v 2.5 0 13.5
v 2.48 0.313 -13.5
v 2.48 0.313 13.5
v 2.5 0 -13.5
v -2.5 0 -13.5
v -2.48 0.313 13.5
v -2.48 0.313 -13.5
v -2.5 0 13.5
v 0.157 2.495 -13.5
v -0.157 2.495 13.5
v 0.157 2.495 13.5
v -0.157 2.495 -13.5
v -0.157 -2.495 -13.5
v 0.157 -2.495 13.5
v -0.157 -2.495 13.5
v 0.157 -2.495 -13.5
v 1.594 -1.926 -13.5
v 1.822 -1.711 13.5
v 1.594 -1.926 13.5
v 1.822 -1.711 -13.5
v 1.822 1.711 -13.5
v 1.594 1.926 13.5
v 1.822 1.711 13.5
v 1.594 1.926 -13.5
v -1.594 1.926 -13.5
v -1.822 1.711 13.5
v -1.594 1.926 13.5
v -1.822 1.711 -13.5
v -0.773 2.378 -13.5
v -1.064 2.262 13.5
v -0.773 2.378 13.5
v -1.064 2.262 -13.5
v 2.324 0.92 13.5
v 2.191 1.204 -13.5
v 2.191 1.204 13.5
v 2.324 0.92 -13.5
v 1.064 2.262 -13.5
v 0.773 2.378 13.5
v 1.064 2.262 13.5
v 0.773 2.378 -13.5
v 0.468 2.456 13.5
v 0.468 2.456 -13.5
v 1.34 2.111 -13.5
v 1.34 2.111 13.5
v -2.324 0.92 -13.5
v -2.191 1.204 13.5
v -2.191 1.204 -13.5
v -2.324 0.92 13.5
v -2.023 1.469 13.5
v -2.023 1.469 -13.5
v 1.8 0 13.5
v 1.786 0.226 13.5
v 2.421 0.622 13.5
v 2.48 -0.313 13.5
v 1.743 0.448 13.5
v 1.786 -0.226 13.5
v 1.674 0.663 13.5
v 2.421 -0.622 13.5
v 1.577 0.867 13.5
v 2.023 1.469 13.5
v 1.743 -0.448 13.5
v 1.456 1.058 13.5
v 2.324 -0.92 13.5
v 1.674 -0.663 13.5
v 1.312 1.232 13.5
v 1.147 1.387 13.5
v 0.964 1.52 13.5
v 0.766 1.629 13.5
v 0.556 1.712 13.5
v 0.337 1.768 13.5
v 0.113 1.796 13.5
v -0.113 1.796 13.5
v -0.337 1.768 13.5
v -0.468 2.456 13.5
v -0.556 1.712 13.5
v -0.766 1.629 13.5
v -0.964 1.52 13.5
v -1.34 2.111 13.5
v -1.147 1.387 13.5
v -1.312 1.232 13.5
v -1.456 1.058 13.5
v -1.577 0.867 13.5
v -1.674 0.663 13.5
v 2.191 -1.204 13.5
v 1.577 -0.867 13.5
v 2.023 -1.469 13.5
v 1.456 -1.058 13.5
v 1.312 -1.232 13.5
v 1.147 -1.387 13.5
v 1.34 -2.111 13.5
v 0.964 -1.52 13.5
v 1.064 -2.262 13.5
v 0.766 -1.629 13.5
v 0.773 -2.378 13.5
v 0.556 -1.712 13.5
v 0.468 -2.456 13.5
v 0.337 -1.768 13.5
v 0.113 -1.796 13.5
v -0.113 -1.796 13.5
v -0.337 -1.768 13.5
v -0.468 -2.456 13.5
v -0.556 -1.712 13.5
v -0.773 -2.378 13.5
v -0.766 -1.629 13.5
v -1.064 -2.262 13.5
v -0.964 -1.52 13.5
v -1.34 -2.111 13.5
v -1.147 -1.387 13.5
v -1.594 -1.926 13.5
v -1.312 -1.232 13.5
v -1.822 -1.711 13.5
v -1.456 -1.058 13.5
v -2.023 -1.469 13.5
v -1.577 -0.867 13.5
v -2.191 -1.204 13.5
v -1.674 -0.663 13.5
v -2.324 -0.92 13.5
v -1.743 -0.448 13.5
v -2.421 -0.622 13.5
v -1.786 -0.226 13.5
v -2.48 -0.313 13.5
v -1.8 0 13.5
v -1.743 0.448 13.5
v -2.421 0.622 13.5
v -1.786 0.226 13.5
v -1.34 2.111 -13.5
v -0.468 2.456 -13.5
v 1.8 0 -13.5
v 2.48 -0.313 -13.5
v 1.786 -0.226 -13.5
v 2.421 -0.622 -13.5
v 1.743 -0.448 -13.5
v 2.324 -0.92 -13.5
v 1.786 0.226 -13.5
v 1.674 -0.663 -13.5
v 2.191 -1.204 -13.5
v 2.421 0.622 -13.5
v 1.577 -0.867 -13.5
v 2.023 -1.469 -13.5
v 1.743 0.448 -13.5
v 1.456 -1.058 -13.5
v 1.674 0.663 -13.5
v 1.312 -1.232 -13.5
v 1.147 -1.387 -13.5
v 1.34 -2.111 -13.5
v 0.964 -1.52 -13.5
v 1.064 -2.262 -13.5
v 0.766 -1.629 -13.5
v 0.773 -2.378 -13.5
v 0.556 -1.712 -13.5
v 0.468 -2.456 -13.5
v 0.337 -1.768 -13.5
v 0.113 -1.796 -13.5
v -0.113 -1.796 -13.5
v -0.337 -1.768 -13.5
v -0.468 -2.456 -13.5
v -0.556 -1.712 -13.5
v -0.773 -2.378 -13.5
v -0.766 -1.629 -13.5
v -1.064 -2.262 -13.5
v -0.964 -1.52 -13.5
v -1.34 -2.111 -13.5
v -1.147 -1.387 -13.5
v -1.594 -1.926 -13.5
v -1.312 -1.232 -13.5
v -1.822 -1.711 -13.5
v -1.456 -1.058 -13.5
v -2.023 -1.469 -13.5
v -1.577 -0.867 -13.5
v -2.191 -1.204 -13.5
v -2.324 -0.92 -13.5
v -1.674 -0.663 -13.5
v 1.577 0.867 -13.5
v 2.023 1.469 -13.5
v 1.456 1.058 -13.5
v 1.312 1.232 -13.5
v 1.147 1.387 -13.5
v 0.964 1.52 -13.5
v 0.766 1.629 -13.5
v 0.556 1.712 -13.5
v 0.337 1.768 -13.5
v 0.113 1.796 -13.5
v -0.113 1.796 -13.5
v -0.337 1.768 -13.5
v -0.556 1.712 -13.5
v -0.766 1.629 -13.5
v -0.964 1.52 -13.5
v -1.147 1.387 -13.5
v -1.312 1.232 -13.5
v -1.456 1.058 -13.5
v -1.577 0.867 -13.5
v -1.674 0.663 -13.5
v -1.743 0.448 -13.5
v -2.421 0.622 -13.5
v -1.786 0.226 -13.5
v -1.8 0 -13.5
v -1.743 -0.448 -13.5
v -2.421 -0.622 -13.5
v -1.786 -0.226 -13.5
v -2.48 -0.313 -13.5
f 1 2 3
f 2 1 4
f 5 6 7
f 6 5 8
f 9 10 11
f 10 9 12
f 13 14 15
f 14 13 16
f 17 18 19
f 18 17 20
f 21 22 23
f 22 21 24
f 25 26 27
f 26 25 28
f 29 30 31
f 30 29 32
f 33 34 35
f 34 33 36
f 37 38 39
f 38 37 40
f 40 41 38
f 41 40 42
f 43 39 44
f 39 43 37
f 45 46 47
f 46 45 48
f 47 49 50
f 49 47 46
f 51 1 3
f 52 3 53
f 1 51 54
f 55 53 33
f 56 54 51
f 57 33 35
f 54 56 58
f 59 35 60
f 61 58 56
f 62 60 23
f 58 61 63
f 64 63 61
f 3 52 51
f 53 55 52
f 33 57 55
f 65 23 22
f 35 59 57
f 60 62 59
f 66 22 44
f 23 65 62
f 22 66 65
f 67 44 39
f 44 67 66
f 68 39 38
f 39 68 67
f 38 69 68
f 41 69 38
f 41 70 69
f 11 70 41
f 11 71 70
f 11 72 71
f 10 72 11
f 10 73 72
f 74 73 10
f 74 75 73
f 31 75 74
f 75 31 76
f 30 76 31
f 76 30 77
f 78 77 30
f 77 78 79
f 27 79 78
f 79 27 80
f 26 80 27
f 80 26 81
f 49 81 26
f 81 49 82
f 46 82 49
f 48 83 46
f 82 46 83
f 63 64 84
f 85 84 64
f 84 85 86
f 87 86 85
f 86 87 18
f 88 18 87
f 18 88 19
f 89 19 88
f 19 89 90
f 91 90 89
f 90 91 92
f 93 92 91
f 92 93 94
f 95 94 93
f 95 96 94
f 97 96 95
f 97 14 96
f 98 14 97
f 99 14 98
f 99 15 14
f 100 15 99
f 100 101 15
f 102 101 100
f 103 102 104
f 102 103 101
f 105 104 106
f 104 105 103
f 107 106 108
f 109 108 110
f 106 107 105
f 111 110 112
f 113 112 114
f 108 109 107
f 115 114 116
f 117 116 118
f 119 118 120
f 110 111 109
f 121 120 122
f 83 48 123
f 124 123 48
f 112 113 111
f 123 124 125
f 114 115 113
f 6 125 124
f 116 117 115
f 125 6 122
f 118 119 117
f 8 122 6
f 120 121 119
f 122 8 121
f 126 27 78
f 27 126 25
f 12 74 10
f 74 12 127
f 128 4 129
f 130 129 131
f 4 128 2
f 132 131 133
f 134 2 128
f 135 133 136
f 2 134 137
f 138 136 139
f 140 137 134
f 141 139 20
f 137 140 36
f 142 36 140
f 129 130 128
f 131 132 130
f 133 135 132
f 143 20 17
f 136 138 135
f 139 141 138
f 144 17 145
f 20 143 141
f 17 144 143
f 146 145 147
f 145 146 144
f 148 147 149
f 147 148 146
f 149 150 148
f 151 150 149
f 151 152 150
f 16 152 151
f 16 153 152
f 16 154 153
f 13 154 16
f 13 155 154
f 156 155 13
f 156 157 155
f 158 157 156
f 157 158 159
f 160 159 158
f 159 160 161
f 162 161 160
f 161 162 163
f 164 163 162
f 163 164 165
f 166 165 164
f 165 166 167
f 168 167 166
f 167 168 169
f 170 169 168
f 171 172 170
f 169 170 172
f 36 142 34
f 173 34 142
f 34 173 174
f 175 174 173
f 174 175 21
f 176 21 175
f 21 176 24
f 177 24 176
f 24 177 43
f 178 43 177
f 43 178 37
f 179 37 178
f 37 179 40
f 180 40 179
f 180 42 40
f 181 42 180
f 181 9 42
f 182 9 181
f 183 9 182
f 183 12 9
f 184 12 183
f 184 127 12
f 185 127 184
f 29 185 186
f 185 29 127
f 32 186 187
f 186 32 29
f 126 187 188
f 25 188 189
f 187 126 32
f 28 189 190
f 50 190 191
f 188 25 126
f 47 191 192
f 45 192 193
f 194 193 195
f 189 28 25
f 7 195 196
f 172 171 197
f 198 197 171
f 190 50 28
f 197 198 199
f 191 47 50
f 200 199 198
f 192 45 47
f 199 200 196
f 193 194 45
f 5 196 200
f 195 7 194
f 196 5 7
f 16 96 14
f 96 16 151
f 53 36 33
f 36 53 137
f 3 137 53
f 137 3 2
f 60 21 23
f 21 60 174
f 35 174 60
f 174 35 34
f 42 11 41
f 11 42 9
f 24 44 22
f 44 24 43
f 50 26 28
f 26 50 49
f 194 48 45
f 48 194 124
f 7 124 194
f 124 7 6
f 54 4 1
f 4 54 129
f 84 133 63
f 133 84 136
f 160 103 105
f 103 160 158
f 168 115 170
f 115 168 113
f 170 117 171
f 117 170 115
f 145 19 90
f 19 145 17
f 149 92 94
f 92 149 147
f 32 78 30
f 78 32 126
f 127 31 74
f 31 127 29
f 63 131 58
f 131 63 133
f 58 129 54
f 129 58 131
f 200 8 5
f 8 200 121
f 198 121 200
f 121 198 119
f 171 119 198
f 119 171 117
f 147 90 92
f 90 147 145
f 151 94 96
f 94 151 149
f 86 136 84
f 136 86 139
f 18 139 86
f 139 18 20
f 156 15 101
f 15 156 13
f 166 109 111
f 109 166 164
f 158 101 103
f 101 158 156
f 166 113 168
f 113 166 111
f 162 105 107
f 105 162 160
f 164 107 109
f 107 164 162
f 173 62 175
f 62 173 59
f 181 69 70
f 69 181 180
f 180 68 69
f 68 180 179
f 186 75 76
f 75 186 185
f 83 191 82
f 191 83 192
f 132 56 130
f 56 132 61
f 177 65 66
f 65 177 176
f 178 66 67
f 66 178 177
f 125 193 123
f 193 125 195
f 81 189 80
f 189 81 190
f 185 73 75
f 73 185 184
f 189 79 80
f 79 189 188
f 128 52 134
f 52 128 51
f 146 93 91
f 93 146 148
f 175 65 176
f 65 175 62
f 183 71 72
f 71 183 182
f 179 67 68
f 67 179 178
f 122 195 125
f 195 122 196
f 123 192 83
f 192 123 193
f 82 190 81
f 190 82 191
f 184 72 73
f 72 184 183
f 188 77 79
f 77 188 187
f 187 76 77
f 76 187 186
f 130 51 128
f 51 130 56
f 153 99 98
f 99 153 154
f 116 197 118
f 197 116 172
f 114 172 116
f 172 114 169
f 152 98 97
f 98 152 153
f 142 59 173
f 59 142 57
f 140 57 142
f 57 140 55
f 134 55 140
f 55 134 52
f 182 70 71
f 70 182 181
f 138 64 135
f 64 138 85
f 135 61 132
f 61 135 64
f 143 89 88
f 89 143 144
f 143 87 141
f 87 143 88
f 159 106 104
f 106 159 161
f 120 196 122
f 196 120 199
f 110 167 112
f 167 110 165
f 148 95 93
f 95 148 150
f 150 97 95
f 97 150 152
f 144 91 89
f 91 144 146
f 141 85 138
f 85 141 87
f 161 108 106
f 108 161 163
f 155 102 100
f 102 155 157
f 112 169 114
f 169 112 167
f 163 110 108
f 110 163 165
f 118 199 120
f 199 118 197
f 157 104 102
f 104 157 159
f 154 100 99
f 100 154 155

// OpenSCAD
$fn = 50;


difference() {
	union() {
		translate(v = [0, 0, -13.5000000000]) {
			cylinder(h = 27, r = 2.5000000000);
		}
	}
	union() {
		translate(v = [0, 0, -100.0000000000]) {
			cylinder(h = 200, r = 1.8000000000);
		}
	}
}
